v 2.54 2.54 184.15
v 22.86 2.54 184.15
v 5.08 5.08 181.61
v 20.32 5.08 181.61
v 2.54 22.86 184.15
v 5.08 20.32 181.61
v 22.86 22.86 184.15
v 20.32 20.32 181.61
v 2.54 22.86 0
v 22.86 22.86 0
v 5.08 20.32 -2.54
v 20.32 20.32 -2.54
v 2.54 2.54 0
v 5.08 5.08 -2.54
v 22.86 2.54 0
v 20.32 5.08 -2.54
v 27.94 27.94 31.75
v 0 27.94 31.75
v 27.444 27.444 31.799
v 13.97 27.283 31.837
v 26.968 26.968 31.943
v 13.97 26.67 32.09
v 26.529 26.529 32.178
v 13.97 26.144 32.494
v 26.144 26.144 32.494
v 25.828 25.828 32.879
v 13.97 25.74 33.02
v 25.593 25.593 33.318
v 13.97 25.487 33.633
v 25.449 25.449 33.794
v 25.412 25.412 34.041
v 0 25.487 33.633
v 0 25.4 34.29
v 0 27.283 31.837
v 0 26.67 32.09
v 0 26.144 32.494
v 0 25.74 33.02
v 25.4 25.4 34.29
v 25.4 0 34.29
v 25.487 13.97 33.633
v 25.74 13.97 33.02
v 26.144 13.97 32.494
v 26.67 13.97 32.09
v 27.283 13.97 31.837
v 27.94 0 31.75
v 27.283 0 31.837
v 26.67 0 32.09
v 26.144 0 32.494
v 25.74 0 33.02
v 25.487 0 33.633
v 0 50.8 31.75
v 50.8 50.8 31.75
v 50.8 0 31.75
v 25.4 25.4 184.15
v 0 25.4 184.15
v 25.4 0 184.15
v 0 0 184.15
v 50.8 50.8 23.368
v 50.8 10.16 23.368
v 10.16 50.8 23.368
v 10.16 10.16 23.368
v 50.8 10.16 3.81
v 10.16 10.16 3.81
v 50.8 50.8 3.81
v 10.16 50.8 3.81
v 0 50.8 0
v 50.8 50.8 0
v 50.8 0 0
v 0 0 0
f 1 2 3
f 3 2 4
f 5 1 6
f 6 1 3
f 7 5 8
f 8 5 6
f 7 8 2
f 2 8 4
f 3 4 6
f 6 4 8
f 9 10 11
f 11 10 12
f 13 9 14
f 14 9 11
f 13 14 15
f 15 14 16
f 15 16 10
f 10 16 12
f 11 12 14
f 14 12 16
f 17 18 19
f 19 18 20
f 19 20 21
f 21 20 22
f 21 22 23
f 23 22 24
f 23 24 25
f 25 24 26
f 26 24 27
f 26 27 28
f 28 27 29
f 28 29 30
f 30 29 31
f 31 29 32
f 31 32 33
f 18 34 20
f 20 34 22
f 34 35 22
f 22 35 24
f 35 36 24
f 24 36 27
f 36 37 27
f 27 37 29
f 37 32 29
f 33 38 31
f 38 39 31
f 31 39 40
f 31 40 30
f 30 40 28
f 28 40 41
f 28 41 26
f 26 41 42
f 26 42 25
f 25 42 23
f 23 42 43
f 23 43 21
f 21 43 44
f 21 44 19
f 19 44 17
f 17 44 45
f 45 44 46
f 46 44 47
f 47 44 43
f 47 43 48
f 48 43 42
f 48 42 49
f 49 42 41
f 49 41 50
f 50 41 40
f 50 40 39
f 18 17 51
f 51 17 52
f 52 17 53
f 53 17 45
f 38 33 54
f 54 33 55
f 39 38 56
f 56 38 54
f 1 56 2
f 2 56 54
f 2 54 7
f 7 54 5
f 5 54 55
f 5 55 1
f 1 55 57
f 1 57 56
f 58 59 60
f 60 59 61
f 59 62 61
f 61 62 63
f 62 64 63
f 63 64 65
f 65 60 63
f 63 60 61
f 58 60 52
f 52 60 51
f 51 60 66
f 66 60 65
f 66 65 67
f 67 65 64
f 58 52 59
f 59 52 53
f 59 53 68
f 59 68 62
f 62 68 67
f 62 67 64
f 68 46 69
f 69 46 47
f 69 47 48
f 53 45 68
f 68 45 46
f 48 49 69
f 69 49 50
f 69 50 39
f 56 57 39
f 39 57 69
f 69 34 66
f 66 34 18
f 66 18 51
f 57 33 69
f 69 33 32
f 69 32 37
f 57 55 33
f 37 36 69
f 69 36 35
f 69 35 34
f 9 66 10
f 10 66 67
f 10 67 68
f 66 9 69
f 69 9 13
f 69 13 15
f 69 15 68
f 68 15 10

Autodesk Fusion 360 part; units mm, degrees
sketch "Sketch1" plane through (0, 0, 0) normal (0, 0, 1) x (1, 0, 0)
  line L0 (0, 0) -> (50.8, 0)
  line L1 (50.8, 0) -> (50.8, 50.8)
  line L2 (50.8, 50.8) -> (0, 50.8)
  line L3 (0, 50.8) -> (0, 0)
  dimension "d1" = 50.8
  dimension "d2" = 50.8
extrude "Extrude1" add sketch "Sketch1" along normal blind 31.75
sketch "Sketch2" plane through (50.8, 0, 0) normal (1, 0, 0) x (0, 1, 0)
  line L0 (0, 0) -> (50.8, 0)
  line L1 (50.8, 0) -> (50.8, 31.75)
  line L2 (50.8, 31.75) -> (0, 31.75)
  line L3 (0, 31.75) -> (0, 0)
  line L4 (50.8, 23.368) -> (10.16, 23.368)
  line L5 (10.16, 23.368) -> (10.16, 3.81)
  line L6 (10.16, 3.81) -> (50.8, 3.81)
  line L7 (50.8, 3.81) -> (50.8, 23.368)
  dimension "d5" = 40.64
  dimension "d6" = 19.558
  dimension "d14" = 3.81
extrude "Extrude2" cut sketch "Sketch2" against normal blind 40.64 contours L1 L4 L5 L6 L7
sketch "Sketch3" plane through (0, 0, 31.75) normal (0, 0, 1) x (-1, 0, 0)
  line L0 (0, -50.8) -> (0, 0)
  line L1 (0, 0) -> (-50.8, 0)
  line L2 (-50.8, 0) -> (-50.8, -50.8)
  line L3 (-50.8, -50.8) -> (0, -50.8)
  line L4 (0, 0) -> (-25.4, 0)
  line L5 (-25.4, 0) -> (-25.4, -25.4)
  line L6 (-25.4, -25.4) -> (0, -25.4)
  line L7 (0, -25.4) -> (0, 0)
  dimension "d10" = 25.4
  dimension "d11" = 25.4
extrude "Extrude3" add sketch "Sketch3" along normal blind 152.4 contours L0 L1 L4 L5 L6 L7
fillet "Fillet1" radius 2.54 2 edges at (25.4, 12.7, 31.75) (12.7, 25.4, 31.75)
sketch "Sketch4" plane through (0, 0, 0) normal (0, 0, -1) x (1, 0, 0)
  line L0 (0, 0) -> (0, -50.8)
  line L1 (0, -50.8) -> (50.8, -50.8)
  line L2 (50.8, -50.8) -> (50.8, 0)
  line L3 (50.8, 0) -> (0, 0)
  line L4 (2.54, -2.54) -> (22.86, -2.54)
  line L5 (22.86, -2.54) -> (22.86, -22.86)
  line L6 (22.86, -22.86) -> (2.54, -22.86)
  line L7 (2.54, -22.86) -> (2.54, -2.54)
  dimension "d17" = 2.54
  dimension "d18" = 2.54
  dimension "d19" = 20.32
  dimension "d20" = 20.32
sketch "Sketch5" plane through (0, 0, 0) normal (0, 0, -1) x (1, 0, 0)
  line L0 (5.08, -5.08) -> (20.32, -5.08)
  line L1 (20.32, -5.08) -> (20.32, -20.32)
  line L2 (20.32, -20.32) -> (5.08, -20.32)
  line L3 (5.08, -20.32) -> (5.08, -5.08)
  line L4 (2.54, -2.54) -> (22.86, -2.54)
  line L5 (2.54, -22.86) -> (2.54, -2.54)
  dimension "d21" = 2.54
  dimension "d22" = 2.54
  dimension "d23" = 15.24
  dimension "d24" = 15.24
extrude "Extrude4" add sketch "Sketch5" along normal blind 2.54
loft "Loft1" add profiles "Sketch4" section 1 contours L4 L5 L6 L7 section 2 face at (10.16, 15.24, -2.54)
sketch "Sketch6" plane through (0, 0, 184.15) normal (0, 0, 1) x (-1, 0, 0)
  line L0 (0, -25.4) -> (0, 0)
  line L1 (0, 0) -> (-25.4, 0)
  line L2 (-25.4, 0) -> (-25.4, -25.4)
  line L3 (-25.4, -25.4) -> (0, -25.4)
  line L4 (-2.54, -22.86) -> (-22.86, -22.86)
  line L5 (-22.86, -22.86) -> (-22.86, -2.54)
  line L6 (-22.86, -2.54) -> (-2.54, -2.54)
  line L7 (-2.54, -2.54) -> (-2.54, -22.86)
  line L8 (-5.08, -20.32) -> (-20.32, -20.32)
  line L9 (-20.32, -20.32) -> (-20.32, -5.08)
  line L10 (-20.32, -5.08) -> (-5.08, -5.08)
  line L11 (-5.08, -5.08) -> (-5.08, -20.32)
  dimension "d27" = 2.54
  dimension "d28" = 2.54
  dimension "d29" = 2.54
  dimension "d30" = 20.32
  dimension "d31" = 2.54
  dimension "d32" = 15.24
  dimension "d33" = 15.24
  dimension "d34" = 2.54
extrude "Extrude5" cut sketch "Sketch6" against normal blind 2.54 contours L8 L9 L10 L11
loft "Loft2" cut profiles "Sketch6" section 1 contours L4 L5 L6 L7 section 2 face at (15.24, 15.24, 181.61)
